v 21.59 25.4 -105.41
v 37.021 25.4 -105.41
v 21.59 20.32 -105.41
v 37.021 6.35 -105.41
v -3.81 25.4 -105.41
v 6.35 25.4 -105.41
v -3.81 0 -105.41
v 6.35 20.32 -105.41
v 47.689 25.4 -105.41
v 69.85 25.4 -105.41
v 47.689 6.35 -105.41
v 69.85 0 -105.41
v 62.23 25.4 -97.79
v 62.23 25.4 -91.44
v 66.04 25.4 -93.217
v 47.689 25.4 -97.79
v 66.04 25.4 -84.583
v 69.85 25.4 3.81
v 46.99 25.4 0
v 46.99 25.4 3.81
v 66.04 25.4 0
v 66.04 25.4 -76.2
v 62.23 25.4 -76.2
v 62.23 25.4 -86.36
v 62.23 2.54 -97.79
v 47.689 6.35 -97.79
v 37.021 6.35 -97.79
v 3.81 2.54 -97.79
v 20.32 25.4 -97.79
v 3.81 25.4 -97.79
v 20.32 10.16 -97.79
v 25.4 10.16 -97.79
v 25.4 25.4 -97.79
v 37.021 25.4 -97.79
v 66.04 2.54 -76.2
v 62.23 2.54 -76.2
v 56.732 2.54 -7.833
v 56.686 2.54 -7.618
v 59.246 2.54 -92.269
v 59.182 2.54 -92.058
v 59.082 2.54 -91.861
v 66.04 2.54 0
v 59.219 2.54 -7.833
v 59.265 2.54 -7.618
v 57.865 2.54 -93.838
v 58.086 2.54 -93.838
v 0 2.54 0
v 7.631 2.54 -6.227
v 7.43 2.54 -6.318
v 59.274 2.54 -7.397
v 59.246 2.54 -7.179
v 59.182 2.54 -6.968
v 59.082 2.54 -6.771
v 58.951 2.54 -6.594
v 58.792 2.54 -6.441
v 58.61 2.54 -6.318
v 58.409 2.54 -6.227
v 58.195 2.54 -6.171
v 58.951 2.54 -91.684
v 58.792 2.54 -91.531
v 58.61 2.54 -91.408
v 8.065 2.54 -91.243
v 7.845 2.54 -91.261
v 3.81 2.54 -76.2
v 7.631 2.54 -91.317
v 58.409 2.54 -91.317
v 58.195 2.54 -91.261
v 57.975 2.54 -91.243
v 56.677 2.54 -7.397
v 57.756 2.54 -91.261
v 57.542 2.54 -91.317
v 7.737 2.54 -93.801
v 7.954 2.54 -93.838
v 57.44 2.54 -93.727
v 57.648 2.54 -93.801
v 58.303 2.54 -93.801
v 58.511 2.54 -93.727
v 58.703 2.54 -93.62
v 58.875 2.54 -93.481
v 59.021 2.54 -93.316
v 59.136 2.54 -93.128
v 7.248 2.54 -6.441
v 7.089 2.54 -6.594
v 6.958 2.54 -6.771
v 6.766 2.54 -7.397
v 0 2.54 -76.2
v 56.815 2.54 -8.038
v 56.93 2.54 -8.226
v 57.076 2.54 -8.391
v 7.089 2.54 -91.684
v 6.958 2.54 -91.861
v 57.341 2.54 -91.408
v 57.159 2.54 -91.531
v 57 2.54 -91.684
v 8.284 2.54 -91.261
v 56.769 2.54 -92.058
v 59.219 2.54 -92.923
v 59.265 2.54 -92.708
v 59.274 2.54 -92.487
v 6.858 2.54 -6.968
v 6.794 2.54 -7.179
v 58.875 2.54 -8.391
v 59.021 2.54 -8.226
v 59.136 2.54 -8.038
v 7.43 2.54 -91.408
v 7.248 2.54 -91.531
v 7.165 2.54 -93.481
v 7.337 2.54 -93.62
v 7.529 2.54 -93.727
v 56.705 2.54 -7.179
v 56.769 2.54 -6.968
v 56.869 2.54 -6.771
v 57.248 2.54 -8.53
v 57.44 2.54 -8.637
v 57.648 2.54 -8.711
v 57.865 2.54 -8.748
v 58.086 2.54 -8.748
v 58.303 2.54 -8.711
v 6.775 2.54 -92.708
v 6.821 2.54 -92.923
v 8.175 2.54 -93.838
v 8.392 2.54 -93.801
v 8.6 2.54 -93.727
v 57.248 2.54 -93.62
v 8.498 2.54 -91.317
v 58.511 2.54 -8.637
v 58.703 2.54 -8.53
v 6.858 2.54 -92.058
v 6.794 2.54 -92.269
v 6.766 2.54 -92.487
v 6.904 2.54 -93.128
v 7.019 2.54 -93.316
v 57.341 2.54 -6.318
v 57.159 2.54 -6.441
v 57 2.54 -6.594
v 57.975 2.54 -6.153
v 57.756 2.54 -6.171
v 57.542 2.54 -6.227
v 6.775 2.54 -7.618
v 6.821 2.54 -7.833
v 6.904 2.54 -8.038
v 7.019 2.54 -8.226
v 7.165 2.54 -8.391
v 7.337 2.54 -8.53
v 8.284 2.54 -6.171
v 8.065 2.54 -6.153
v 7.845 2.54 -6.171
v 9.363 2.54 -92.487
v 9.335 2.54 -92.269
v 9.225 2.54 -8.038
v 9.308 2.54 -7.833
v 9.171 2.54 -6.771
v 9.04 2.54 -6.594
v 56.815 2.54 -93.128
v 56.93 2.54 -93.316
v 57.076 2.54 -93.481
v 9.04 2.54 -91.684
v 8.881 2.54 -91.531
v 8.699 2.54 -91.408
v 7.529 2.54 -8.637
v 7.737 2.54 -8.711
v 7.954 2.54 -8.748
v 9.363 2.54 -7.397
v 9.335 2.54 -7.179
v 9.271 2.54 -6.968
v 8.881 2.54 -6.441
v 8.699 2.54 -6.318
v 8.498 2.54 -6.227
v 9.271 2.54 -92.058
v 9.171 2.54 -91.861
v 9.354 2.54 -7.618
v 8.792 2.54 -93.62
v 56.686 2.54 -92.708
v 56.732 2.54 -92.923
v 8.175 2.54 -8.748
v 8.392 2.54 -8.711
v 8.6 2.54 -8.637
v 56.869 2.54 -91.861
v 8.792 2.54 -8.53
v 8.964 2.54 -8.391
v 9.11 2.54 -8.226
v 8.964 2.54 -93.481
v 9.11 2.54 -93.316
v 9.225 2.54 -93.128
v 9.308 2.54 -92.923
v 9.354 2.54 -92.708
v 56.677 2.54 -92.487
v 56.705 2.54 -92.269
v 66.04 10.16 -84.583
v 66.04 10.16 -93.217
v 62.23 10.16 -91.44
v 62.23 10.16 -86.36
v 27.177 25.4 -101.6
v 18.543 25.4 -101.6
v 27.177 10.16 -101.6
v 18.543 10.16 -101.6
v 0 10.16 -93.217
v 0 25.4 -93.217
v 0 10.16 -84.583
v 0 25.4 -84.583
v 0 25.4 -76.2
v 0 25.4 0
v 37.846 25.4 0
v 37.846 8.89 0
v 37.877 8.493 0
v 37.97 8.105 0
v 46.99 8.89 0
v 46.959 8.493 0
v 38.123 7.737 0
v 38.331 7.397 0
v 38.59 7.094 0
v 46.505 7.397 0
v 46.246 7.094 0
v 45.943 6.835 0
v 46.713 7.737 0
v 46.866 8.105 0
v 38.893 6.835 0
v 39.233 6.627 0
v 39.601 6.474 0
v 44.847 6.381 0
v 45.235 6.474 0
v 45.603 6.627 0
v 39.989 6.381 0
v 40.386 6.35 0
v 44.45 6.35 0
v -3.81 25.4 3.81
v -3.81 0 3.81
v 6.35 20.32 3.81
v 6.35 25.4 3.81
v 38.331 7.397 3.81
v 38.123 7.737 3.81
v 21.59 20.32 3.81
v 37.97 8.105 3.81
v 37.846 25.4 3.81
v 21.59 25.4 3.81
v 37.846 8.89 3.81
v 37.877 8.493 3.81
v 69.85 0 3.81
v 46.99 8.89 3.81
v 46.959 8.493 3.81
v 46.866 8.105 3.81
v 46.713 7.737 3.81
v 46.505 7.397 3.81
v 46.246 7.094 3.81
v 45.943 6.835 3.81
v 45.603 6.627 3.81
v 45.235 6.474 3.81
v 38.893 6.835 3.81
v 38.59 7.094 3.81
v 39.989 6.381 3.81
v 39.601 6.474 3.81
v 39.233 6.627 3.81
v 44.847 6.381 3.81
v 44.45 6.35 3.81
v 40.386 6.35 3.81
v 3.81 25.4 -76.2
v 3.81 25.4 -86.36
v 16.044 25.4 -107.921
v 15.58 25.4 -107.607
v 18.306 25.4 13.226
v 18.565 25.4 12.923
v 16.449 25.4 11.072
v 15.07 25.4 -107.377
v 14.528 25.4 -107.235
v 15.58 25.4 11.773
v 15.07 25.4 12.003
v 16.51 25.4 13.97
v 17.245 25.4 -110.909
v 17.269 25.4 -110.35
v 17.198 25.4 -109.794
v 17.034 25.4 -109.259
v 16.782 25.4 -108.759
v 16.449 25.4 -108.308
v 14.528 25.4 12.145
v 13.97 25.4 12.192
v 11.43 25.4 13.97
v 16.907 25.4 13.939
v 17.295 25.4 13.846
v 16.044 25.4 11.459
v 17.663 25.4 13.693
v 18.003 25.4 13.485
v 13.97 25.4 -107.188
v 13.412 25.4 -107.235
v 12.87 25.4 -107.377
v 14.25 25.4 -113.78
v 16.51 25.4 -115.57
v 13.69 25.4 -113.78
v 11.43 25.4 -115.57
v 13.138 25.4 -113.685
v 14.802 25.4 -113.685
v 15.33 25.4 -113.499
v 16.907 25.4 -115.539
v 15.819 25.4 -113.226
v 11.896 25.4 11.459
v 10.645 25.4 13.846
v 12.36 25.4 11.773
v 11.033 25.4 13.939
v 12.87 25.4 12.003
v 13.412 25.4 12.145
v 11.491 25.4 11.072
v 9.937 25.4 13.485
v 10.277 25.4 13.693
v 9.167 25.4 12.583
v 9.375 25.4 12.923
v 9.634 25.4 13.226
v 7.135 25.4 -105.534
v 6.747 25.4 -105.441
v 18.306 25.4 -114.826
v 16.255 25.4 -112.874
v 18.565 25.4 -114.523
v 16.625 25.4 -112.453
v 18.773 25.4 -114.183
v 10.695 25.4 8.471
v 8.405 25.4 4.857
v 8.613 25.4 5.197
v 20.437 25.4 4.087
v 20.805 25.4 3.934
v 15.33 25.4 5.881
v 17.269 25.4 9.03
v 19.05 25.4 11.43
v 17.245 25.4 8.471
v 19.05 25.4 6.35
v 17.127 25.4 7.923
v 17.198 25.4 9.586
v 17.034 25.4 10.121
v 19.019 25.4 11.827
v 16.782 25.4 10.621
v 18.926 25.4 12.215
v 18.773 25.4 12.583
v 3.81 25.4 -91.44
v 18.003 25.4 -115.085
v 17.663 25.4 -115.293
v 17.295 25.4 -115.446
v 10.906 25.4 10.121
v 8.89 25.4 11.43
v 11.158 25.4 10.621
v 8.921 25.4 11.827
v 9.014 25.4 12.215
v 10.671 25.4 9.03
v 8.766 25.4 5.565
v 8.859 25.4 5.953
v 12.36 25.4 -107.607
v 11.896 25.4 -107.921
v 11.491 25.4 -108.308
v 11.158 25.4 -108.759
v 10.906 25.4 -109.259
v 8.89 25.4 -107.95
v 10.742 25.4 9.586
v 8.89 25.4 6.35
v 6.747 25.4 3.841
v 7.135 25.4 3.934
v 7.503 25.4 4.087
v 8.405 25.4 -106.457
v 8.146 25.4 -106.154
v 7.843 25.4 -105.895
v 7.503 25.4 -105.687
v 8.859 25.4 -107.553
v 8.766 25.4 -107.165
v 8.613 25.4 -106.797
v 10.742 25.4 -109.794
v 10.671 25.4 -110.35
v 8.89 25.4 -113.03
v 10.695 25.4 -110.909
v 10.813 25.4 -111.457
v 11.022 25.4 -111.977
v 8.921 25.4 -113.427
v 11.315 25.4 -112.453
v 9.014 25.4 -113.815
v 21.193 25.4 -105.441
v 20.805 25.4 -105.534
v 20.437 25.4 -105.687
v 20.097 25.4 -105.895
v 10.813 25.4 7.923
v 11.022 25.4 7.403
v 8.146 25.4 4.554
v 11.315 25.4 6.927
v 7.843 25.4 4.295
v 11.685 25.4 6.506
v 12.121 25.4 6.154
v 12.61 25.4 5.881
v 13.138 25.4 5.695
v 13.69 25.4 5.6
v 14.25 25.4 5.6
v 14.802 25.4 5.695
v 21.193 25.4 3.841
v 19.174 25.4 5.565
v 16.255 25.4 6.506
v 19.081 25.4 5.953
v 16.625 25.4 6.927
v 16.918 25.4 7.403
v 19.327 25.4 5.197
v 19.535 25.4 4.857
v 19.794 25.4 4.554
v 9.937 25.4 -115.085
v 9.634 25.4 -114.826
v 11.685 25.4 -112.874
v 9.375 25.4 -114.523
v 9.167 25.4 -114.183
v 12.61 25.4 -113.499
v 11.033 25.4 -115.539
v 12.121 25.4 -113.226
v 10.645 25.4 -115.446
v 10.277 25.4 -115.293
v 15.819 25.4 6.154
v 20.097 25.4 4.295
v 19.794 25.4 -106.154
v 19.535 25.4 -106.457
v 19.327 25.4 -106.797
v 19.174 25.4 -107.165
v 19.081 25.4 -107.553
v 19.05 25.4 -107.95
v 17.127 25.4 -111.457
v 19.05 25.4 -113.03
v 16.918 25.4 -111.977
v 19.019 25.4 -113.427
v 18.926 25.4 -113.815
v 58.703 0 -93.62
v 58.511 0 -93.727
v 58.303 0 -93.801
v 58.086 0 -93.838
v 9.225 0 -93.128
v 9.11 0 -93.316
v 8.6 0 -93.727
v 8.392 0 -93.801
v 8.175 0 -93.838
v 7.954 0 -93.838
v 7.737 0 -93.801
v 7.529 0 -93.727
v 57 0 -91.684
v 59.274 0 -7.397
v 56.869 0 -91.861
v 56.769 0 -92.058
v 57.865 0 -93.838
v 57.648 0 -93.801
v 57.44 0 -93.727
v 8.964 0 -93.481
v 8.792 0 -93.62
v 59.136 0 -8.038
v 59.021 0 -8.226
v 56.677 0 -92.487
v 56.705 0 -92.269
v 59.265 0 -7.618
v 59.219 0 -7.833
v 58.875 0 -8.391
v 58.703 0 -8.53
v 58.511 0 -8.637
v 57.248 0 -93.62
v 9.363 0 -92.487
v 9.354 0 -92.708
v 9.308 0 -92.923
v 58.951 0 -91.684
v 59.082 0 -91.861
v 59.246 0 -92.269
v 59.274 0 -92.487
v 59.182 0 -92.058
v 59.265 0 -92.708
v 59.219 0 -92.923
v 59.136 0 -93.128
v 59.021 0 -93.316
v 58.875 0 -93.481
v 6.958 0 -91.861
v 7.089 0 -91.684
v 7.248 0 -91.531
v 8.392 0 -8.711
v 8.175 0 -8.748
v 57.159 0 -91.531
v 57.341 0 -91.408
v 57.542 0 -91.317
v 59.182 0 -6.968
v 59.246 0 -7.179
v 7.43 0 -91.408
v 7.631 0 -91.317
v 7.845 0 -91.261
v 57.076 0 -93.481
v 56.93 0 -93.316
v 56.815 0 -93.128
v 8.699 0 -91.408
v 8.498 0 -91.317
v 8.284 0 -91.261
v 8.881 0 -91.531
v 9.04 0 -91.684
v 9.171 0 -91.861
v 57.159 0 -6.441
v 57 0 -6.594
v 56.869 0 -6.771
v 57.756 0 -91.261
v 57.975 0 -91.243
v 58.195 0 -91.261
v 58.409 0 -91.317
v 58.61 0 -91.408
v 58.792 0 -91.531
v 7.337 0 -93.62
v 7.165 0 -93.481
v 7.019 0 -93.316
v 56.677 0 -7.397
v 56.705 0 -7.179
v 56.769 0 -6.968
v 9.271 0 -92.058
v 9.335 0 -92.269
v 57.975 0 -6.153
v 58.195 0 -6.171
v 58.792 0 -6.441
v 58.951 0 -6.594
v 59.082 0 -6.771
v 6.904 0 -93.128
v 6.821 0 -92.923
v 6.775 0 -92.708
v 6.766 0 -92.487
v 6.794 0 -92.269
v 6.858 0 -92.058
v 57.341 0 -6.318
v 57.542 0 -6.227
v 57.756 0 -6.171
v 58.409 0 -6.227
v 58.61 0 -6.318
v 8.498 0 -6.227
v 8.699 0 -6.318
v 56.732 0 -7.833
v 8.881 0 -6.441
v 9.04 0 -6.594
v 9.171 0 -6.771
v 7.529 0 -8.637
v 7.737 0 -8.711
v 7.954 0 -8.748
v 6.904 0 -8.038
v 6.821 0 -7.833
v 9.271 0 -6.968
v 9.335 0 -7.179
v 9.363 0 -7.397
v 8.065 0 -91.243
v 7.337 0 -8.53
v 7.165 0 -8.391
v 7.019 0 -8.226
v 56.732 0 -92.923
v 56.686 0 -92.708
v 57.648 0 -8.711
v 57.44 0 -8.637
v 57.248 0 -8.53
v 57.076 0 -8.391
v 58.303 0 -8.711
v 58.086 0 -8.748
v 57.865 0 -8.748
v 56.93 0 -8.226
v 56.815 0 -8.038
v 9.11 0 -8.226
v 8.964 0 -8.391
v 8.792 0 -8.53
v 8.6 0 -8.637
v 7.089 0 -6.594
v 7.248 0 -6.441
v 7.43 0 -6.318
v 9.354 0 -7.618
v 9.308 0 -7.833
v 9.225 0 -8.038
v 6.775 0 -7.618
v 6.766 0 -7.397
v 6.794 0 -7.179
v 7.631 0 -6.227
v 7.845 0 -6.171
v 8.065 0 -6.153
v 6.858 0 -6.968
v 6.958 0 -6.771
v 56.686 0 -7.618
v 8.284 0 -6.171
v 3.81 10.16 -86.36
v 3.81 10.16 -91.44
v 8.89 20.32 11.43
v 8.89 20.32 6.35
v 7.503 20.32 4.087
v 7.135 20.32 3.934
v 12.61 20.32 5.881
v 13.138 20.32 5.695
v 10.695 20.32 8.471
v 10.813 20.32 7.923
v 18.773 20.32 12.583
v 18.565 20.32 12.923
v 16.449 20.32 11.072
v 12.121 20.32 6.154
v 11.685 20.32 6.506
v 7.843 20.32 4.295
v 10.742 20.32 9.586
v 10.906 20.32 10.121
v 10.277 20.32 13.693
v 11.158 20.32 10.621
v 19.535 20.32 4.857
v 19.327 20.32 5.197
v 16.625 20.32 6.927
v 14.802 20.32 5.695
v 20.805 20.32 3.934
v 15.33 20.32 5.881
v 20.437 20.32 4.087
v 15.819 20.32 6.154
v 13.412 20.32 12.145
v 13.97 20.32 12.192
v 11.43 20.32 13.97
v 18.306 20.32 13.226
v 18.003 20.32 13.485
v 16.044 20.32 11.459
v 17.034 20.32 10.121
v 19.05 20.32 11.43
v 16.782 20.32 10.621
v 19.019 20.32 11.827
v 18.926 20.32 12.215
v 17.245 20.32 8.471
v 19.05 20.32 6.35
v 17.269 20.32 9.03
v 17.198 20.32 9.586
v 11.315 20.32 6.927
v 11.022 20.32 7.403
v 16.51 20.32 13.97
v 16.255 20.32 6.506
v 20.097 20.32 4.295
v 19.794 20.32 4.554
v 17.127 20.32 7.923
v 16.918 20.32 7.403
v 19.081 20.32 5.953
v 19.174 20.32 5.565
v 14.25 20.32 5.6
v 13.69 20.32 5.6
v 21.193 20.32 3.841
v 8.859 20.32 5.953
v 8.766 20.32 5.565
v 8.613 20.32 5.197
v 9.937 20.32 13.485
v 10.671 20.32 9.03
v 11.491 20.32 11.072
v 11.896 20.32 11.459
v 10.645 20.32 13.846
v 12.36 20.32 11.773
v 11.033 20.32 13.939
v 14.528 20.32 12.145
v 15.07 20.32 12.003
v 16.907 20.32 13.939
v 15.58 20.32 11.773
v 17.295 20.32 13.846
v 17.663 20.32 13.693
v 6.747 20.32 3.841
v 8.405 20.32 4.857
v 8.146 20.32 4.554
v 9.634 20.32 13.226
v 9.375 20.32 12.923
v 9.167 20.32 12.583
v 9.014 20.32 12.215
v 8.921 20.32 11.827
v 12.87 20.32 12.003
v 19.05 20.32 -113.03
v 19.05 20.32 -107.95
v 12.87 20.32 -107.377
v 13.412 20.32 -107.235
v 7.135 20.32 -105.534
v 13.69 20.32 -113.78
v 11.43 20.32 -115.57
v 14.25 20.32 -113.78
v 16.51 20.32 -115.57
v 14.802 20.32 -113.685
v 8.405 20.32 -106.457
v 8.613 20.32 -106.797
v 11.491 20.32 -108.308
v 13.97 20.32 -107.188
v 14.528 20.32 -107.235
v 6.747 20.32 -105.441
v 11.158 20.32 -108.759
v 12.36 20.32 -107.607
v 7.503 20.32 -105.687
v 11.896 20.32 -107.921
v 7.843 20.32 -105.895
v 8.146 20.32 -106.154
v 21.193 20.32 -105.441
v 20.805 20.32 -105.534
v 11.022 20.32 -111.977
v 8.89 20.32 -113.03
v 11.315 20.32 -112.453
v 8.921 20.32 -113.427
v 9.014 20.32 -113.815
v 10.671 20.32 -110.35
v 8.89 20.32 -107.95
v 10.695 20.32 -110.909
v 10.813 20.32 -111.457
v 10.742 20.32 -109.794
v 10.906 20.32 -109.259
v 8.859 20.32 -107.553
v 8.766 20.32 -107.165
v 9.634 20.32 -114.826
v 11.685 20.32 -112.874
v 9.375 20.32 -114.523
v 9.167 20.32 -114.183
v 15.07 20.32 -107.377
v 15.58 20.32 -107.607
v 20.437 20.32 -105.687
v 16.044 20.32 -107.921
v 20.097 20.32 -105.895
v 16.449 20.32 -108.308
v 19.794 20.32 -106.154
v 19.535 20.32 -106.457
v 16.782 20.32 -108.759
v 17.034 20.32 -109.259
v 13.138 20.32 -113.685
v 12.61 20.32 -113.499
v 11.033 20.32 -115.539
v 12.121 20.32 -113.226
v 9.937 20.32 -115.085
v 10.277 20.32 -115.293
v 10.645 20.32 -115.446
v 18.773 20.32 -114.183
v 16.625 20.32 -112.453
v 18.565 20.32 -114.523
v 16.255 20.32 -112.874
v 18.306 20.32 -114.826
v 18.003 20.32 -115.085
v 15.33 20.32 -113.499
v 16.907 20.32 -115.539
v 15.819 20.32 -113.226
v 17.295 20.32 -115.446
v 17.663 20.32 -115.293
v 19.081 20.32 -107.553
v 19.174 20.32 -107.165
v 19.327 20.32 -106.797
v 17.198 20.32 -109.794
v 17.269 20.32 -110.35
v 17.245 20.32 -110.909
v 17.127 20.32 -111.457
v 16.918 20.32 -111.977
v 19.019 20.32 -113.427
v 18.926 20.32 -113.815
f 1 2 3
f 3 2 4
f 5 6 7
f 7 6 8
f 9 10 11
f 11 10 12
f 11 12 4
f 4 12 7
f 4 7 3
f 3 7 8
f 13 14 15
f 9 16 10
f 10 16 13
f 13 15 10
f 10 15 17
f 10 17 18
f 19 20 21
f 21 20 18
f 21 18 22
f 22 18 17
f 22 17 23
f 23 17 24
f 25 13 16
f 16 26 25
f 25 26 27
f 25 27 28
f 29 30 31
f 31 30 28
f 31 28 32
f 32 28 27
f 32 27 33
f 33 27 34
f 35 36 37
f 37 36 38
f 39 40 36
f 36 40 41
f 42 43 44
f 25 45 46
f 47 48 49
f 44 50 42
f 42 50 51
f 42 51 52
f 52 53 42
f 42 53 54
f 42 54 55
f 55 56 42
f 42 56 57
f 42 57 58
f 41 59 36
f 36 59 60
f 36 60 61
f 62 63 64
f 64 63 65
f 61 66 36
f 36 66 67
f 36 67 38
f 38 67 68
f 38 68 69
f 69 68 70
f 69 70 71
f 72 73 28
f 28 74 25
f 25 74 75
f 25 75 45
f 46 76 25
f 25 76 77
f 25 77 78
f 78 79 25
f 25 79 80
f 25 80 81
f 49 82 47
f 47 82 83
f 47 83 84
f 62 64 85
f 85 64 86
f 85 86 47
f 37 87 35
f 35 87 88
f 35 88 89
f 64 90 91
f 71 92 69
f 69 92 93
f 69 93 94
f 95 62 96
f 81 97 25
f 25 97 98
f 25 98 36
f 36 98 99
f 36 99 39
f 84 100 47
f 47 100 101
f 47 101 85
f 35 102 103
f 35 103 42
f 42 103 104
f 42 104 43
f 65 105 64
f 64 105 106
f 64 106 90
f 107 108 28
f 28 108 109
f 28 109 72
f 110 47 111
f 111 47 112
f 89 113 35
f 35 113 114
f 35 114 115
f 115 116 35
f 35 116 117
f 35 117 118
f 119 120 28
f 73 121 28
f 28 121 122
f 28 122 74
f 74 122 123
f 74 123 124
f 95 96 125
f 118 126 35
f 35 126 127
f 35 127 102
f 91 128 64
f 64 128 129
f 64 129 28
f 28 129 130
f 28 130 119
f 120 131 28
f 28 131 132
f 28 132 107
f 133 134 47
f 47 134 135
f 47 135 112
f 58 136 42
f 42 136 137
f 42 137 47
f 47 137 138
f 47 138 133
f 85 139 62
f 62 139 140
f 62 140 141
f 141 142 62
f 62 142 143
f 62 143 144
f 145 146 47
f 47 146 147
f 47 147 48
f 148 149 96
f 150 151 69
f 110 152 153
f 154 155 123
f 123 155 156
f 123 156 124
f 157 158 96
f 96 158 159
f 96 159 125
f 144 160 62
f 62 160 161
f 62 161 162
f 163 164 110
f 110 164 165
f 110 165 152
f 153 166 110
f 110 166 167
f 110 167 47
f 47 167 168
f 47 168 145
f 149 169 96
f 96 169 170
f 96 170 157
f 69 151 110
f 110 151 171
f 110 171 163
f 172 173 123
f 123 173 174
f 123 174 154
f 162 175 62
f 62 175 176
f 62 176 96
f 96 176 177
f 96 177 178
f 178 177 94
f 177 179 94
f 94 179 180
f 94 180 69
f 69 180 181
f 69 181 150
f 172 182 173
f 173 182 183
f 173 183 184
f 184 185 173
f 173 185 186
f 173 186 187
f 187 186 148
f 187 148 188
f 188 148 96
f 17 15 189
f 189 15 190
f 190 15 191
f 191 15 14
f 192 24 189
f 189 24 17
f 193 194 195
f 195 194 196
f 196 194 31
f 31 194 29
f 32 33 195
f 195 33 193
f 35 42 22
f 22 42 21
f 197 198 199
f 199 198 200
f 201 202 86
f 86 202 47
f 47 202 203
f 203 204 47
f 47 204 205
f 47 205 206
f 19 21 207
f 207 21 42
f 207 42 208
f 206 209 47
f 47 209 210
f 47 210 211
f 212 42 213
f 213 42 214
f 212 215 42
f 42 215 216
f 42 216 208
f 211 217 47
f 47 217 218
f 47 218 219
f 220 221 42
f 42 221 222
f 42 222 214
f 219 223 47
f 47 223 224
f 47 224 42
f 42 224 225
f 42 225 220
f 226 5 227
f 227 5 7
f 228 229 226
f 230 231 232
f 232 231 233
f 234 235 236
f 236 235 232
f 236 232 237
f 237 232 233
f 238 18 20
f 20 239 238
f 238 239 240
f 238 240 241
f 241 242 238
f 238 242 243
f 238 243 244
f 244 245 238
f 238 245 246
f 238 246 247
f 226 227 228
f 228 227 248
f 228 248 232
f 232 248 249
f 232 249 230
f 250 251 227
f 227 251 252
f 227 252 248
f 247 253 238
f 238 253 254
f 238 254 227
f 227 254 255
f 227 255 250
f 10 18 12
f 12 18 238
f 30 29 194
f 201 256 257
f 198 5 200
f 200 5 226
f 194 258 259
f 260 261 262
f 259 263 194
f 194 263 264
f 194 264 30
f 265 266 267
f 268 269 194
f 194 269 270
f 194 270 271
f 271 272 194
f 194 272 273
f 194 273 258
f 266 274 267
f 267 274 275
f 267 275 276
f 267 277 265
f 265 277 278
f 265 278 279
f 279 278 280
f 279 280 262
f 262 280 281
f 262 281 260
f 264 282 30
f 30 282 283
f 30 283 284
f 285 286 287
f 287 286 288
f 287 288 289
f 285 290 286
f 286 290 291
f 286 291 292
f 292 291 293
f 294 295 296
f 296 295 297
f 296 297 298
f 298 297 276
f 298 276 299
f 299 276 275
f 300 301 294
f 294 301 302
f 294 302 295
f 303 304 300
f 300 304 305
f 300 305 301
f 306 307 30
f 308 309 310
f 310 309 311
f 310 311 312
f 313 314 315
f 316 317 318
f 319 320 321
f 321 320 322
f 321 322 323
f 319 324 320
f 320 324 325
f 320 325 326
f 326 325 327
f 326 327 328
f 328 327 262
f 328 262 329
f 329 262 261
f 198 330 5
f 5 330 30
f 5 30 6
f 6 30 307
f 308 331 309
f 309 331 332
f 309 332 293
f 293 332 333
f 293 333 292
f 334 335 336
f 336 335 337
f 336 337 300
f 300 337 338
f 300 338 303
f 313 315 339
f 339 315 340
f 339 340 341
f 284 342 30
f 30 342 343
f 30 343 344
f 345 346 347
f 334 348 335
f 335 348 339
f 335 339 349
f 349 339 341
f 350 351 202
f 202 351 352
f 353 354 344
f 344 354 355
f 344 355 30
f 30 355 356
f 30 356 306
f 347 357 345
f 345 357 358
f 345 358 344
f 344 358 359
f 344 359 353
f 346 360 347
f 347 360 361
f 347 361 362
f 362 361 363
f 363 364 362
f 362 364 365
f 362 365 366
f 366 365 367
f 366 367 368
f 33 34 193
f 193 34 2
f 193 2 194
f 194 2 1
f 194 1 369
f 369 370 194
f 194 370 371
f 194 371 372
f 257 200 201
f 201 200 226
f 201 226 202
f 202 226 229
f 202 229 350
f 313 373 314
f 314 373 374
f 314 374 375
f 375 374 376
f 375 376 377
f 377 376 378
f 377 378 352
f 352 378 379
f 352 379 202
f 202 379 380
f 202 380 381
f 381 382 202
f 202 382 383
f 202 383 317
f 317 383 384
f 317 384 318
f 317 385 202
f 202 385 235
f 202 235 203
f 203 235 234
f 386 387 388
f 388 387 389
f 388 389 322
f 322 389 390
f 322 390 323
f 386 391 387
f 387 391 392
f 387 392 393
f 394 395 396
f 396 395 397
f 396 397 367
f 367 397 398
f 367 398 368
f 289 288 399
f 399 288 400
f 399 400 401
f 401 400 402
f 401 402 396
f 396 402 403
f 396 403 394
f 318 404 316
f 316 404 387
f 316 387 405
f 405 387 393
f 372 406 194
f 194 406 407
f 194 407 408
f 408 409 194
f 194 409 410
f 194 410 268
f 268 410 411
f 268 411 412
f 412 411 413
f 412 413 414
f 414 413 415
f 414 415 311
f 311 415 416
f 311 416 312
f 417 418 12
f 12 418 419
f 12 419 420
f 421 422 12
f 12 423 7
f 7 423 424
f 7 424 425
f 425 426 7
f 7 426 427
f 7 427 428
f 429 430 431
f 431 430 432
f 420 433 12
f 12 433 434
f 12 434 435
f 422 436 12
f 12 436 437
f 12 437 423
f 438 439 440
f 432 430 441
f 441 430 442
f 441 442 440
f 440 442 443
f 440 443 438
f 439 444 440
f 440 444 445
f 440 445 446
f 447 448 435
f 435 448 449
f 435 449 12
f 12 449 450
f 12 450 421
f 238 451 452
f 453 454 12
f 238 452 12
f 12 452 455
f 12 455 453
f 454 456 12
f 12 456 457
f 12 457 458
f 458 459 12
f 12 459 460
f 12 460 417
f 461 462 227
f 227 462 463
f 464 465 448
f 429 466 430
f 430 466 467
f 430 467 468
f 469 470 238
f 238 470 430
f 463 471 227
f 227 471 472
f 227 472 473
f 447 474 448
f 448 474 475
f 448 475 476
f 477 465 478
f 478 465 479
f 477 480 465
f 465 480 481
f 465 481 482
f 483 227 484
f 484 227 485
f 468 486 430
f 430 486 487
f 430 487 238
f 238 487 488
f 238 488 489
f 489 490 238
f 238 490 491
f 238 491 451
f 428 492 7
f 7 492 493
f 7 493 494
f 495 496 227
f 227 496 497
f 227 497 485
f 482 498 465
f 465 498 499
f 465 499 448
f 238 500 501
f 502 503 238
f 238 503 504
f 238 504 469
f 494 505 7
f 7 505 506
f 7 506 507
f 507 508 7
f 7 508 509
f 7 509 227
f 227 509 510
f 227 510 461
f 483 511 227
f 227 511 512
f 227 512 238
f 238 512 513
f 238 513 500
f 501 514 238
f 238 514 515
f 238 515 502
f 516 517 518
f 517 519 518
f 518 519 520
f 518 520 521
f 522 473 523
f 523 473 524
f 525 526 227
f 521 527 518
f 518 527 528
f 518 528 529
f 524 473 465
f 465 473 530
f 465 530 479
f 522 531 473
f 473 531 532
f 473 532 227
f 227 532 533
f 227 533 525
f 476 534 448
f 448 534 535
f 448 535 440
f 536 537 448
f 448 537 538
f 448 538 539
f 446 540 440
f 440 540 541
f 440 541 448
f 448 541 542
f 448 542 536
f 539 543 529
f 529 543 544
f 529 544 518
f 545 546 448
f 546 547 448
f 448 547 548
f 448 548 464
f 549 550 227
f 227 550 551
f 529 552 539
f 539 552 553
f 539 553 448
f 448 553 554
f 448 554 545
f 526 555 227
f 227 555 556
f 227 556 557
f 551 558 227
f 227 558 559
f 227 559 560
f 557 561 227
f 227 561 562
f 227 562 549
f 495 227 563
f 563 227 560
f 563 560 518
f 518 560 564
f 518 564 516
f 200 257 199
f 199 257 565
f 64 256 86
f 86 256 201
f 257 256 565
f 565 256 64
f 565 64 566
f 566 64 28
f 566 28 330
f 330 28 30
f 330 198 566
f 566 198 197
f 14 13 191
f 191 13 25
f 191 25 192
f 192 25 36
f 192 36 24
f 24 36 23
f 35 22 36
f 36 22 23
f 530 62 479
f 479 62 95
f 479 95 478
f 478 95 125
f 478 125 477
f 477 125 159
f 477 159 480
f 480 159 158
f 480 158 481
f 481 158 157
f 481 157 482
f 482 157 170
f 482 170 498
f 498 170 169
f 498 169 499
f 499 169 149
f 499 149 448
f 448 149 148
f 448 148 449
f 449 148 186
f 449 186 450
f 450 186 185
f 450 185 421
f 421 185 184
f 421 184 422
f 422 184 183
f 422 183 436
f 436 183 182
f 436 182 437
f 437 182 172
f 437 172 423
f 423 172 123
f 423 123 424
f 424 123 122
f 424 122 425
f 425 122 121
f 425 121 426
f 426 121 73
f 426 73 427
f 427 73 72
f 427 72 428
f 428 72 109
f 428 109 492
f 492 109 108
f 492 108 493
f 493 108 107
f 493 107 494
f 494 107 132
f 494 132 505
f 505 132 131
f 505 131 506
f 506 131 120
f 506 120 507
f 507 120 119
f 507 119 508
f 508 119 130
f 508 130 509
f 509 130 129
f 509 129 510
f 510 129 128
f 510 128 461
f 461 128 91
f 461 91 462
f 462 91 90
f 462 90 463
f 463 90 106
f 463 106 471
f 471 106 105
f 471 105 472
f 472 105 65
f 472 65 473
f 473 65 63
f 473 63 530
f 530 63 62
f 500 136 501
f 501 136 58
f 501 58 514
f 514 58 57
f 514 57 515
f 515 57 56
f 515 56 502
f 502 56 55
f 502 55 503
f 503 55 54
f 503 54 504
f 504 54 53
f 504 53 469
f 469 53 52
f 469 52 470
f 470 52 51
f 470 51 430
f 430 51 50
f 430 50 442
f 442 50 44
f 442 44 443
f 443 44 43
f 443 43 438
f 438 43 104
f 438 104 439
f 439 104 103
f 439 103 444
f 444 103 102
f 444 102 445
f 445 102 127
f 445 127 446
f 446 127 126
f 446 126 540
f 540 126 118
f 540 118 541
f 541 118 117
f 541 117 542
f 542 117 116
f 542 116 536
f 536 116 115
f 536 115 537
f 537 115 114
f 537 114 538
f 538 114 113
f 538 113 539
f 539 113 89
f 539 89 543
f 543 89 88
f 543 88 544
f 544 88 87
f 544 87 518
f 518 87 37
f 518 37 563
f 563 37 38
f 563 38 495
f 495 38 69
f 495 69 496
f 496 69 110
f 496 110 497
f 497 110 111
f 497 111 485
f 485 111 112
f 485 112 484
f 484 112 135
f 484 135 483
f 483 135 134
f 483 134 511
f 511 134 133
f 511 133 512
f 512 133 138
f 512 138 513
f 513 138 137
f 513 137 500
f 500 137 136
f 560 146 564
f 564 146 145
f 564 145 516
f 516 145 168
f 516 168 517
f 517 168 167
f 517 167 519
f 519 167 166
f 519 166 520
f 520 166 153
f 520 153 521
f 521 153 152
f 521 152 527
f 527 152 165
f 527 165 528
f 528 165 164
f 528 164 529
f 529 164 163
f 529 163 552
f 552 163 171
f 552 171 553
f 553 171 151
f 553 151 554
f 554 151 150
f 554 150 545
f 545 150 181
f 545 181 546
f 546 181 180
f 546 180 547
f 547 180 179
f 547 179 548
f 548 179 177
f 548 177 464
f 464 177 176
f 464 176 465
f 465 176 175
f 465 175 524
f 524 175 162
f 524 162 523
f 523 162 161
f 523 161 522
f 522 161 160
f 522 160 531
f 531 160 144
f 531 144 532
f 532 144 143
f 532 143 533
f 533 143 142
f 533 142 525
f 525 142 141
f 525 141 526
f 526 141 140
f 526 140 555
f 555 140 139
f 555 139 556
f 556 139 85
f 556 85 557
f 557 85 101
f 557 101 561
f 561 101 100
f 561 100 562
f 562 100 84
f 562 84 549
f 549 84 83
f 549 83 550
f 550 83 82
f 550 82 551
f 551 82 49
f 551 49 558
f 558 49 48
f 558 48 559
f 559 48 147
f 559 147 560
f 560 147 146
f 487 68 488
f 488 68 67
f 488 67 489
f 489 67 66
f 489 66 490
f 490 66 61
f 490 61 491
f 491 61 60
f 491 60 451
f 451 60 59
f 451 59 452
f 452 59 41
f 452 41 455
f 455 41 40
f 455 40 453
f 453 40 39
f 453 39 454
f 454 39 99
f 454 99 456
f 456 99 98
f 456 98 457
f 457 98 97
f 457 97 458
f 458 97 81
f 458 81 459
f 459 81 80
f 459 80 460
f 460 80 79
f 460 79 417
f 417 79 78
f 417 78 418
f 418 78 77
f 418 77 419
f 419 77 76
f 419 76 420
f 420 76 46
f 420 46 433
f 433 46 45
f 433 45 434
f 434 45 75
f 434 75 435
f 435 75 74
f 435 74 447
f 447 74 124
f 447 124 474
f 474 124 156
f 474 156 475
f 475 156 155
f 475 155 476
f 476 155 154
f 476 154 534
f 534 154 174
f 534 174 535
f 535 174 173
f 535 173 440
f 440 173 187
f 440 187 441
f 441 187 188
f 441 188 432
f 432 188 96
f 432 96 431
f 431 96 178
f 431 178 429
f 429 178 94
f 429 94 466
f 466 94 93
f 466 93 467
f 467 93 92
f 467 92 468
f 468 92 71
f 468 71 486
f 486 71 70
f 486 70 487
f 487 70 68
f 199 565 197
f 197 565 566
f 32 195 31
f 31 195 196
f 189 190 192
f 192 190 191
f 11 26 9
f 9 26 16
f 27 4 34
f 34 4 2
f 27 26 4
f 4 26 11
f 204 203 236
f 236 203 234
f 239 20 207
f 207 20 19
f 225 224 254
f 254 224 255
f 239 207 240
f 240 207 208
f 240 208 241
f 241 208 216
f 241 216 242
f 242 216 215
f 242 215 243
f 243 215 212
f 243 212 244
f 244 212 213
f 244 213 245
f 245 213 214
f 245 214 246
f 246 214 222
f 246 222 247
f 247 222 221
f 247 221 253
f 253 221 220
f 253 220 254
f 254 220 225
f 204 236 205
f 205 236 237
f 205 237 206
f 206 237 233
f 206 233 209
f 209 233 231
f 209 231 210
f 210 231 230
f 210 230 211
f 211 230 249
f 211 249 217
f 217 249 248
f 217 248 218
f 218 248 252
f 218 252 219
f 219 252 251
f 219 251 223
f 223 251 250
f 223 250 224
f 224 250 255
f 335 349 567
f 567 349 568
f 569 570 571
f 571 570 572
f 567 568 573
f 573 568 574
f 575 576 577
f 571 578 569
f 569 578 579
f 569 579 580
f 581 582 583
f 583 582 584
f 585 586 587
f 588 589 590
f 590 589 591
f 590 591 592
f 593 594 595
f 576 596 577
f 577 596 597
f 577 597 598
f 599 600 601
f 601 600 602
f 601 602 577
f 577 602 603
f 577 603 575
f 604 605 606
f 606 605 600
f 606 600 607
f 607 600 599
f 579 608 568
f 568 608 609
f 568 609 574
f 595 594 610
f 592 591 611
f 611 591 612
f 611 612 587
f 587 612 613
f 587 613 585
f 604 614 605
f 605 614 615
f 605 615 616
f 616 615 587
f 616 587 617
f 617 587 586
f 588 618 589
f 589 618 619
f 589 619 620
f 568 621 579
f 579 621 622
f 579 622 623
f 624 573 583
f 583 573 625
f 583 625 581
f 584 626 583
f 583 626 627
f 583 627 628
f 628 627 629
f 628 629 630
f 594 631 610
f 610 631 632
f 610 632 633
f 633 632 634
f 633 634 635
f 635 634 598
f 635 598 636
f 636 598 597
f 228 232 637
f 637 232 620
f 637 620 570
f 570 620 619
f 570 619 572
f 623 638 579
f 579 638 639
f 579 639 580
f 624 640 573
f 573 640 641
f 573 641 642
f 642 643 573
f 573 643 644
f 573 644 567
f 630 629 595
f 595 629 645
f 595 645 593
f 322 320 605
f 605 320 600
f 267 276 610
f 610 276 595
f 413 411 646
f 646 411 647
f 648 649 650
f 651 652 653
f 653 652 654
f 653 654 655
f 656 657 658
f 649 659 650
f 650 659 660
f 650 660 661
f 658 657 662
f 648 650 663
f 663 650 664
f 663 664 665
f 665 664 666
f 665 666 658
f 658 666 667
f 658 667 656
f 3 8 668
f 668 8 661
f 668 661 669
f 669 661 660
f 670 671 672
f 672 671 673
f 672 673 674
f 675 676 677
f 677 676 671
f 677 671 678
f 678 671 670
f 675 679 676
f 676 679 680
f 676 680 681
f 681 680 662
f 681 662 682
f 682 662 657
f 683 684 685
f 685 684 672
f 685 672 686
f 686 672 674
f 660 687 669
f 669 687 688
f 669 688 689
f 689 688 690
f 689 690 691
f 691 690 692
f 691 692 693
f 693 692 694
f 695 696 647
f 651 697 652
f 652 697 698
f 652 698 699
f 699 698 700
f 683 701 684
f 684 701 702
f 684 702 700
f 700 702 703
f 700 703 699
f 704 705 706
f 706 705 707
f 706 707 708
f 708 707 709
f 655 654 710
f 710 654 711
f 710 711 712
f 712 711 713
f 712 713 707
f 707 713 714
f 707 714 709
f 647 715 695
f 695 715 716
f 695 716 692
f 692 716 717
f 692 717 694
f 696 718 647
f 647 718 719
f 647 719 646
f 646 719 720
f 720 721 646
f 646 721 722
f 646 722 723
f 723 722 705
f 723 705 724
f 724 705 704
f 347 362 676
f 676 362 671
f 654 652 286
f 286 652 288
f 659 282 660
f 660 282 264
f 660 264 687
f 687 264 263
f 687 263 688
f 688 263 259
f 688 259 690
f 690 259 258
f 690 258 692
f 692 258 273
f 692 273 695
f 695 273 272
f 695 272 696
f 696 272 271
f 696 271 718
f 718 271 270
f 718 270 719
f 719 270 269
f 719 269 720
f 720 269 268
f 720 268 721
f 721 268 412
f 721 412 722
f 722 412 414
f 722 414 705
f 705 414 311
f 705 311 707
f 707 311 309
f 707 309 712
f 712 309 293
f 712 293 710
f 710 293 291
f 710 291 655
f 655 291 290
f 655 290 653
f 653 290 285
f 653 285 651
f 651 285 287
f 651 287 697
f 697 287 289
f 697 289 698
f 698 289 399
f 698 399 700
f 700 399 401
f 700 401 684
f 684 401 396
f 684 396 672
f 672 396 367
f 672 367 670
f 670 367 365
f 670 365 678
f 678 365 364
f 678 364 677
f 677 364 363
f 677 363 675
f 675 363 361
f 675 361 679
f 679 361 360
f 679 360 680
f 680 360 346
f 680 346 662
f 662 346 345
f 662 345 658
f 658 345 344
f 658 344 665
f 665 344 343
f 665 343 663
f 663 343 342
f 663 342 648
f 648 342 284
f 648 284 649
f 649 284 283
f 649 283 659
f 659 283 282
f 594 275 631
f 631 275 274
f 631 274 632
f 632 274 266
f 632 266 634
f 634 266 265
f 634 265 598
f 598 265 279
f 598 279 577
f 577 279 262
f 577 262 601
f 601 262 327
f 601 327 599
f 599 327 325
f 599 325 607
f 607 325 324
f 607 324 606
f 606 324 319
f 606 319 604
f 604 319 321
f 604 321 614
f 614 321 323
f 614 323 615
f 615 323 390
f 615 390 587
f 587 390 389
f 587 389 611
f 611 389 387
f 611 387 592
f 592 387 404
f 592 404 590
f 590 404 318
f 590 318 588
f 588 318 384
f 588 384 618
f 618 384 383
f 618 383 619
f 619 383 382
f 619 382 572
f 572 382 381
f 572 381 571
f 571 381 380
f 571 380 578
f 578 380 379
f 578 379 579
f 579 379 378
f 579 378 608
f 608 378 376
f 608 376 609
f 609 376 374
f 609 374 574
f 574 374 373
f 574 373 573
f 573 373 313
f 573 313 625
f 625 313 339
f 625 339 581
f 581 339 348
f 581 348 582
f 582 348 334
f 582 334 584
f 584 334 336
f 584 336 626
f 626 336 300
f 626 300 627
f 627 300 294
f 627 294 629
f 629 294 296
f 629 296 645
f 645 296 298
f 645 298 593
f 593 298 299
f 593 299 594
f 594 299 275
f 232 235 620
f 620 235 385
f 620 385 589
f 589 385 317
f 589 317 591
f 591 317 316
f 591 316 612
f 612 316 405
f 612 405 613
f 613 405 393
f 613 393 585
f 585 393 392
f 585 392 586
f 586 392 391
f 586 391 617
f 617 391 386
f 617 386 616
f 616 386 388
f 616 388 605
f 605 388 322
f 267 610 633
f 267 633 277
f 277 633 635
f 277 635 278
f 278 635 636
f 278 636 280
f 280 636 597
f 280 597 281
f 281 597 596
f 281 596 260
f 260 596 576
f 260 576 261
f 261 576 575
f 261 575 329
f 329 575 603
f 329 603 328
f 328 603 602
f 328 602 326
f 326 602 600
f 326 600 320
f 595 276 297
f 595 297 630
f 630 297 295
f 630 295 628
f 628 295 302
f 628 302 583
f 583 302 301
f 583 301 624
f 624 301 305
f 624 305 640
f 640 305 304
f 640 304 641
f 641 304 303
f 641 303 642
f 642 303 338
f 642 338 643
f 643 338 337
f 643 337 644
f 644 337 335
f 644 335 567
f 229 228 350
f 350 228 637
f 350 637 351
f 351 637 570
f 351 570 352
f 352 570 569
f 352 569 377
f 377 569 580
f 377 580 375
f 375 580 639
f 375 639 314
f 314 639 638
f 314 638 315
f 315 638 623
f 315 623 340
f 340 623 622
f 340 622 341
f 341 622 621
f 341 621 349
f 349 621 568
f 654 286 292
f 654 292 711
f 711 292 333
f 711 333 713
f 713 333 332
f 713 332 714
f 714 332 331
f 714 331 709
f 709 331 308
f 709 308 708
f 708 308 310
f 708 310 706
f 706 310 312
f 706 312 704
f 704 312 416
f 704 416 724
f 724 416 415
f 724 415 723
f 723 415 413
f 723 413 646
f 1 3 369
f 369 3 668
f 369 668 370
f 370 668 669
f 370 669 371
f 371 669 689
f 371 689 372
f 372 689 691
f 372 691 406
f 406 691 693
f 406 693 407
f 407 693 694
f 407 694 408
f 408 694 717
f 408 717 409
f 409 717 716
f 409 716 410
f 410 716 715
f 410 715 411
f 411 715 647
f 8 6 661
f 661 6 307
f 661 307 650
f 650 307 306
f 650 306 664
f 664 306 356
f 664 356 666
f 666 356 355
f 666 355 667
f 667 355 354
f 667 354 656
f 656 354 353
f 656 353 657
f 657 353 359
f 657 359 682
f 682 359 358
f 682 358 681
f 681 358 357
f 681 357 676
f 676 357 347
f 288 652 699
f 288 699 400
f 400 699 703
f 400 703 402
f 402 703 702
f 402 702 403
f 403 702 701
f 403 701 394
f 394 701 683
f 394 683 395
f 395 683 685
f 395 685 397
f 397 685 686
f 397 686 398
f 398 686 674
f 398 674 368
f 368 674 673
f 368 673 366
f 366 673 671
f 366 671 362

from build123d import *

# Parameters (mm, degrees)
SKETCH1_W               = 66.04
SKETCH1_H               = 101.6
BASE_EXTRUDE_DEPTH      = 2.54
SKETCH2_W               = 73.66
SKETCH2_H               = 109.22
SKETCH2_W_2             = 66.04
SKETCH2_H_2             = 101.6
WALLS_DEPTH             = 25.4
BUTTON_GUIDE_DEPTH      = 22.86
SKETCH4_R               = 1.3
CUT_EXTRUDE1_DEPTH      = 129.502413207
HARD_STOP_DEPTH         = 7.62
SKETCH6_W               = 9.144
SKETCH6_H               = 3.81
SKETCH6_W_2             = 10.668
SKETCH6_H_2             = 7.62
ELECTRONICS_HOLES_DEPTH = 19.05
FILLET1_R               = 2.54
SKETCH7_W               = 10.16
SKETCH7_H               = 5.08
BOSS_EXTRUDE1_DEPTH     = 10.16
SKETCH8_W               = 10.16
SKETCH8_H               = 5.08
BOSS_EXTRUDE2_DEPTH     = 10.16
SKETCH9_R               = 3.302
CUT_EXTRUDE2_DEPTH      = 138.406722543
FILLET2_R               = 2.54


with BuildPart() as part:
    # Sketch1 → Base Extrude (new body)
    with BuildSketch(Plane(origin=(0, 0, 0), x_dir=(1, 0, 0), z_dir=(0, 1, 0))):
        with Locations((33.02, 50.8)):
            Rectangle(SKETCH1_W, SKETCH1_H)
    extrude(amount=BASE_EXTRUDE_DEPTH)

    # Sketch2 → Walls (add)
    with BuildSketch(Plane.XZ):
        with Locations((33.02, -50.8)):
            Rectangle(SKETCH2_W, SKETCH2_H)
        with Locations((33.02, -50.8)):
            Rectangle(SKETCH2_W_2, SKETCH2_H_2, mode=Mode.SUBTRACT)
    extrude(amount=-WALLS_DEPTH)

    # Sketch3 → Button Guide (add)
    with BuildSketch(Plane(origin=(0, 25.4, 0), x_dir=(1, 0, 0), z_dir=(0, 1, 0))):
        Polygon((3.81, 86.36), (0, 84.583367822), (0, 76.2), (3.81, 76.2), align=None)
        Polygon((18.543367822, 101.6), (0, 101.6), (0, 93.216632178), (3.81, 91.44), (3.81, 97.79), (20.32, 97.79), align=None)
        Polygon((66.04, 101.6), (27.176632178, 101.6), (25.4, 97.79), (62.23, 97.79), (62.23, 91.44), (66.04, 93.216632178), align=None)
        Polygon((66.04, 76.2), (66.04, 84.583367822), (62.23, 86.36), (62.23, 76.2), align=None)
    extrude(amount=-BUTTON_GUIDE_DEPTH)

    # Sketch4 → Cut-Extrude1 (cut, through all)
    with BuildSketch(Plane(origin=(0, 2.54, 0), x_dir=(1, 0, 0), z_dir=(0, 1, 0))):
        with Locations(Location((8.0645, 92.542598833, 0), (0, 0, 270))):
            Circle(SKETCH4_R)
        with Locations(Location((57.9755, 92.542598833, 0), (0, 0, 270))):
            Circle(SKETCH4_R)
        with Locations(Location((8.0645, 7.452598833, 0), (0, 0, 270))):
            Circle(SKETCH4_R)
        with Locations(Location((57.9755, 7.452598833, 0), (0, 0, 270))):
            Circle(SKETCH4_R)
    extrude(amount=-CUT_EXTRUDE1_DEPTH, mode=Mode.SUBTRACT)

    # Sketch5 → Hard stop (add)
    with BuildSketch(Plane(origin=(0, 2.54, 0), x_dir=(1, 0, 0), z_dir=(0, 1, 0))):
        Polygon((0, 93.216632178), (0, 84.583367822), (3.81, 86.36), (3.81, 91.44), align=None)
        Polygon((18.543367822, 101.6), (27.176632178, 101.6), (25.4, 97.79), (20.32, 97.79), align=None)
        Polygon((62.23, 91.44), (66.04, 93.216632178), (66.04, 84.583367822), (62.23, 86.36), align=None)
    extrude(amount=HARD_STOP_DEPTH)

    # Sketch6 → Electronics Holes (cut)
    with BuildSketch(Plane(origin=(0, 25.4, 0), x_dir=(1, 0, 0), z_dir=(0, 1, 0))):
        with Locations((42.418, -1.905)):
            Rectangle(SKETCH6_W, SKETCH6_H)
        with Locations((42.3545, 101.6)):
            Rectangle(SKETCH6_W_2, SKETCH6_H_2)
    extrude(amount=-ELECTRONICS_HOLES_DEPTH, mode=Mode.SUBTRACT)

    # Fillet1
    fillet1_edges = [part.edges().sort_by_distance(p)[0] for p in [
        (37.846, 6.35, 1.905),
        (46.99, 6.35, 1.905),
    ]]
    fillet(fillet1_edges, radius=FILLET1_R)

    # Sketch7 → Boss-Extrude1 (add)
    with BuildSketch(Plane.XY.offset(3.81)):
        with Locations((13.97, 22.86)):
            Rectangle(SKETCH7_W, SKETCH7_H)
    extrude(amount=BOSS_EXTRUDE1_DEPTH)

    # Sketch8 → Boss-Extrude2 (add)
    with BuildSketch(Plane(origin=(0, 0, -105.41), x_dir=(-1, 0, 0), z_dir=(0, 0, -1))):
        with Locations((-13.97, 22.86)):
            Rectangle(SKETCH8_W, SKETCH8_H)
    extrude(amount=BOSS_EXTRUDE2_DEPTH)

    # Sketch9 → Cut-Extrude2 (cut, through all)
    with BuildSketch(Plane(origin=(0, 25.4, 0), x_dir=(1, 0, 0), z_dir=(0, 1, 0))):
        with Locations(Location((13.97, 110.49, 0), (0, 0, 270))):
            Circle(SKETCH9_R)
        with Locations(Location((13.97, -8.89, 0), (0, 0, 270))):
            Circle(SKETCH9_R)
    extrude(amount=-CUT_EXTRUDE2_DEPTH, mode=Mode.SUBTRACT)

    # Fillet2
    fillet2_edges = [part.edges().sort_by_distance(p)[0] for p in [
        (8.89, 22.86, 3.81),
        (19.05, 22.86, 3.81),
        (8.89, 22.86, 13.97),
        (19.05, 22.86, 13.97),
        (19.05, 22.86, -105.41),
        (8.89, 22.86, -105.41),
        (19.05, 22.86, -115.57),
        (8.89, 22.86, -115.57),
    ]]
    fillet(fillet2_edges, radius=FILLET2_R)


solid = part.part
